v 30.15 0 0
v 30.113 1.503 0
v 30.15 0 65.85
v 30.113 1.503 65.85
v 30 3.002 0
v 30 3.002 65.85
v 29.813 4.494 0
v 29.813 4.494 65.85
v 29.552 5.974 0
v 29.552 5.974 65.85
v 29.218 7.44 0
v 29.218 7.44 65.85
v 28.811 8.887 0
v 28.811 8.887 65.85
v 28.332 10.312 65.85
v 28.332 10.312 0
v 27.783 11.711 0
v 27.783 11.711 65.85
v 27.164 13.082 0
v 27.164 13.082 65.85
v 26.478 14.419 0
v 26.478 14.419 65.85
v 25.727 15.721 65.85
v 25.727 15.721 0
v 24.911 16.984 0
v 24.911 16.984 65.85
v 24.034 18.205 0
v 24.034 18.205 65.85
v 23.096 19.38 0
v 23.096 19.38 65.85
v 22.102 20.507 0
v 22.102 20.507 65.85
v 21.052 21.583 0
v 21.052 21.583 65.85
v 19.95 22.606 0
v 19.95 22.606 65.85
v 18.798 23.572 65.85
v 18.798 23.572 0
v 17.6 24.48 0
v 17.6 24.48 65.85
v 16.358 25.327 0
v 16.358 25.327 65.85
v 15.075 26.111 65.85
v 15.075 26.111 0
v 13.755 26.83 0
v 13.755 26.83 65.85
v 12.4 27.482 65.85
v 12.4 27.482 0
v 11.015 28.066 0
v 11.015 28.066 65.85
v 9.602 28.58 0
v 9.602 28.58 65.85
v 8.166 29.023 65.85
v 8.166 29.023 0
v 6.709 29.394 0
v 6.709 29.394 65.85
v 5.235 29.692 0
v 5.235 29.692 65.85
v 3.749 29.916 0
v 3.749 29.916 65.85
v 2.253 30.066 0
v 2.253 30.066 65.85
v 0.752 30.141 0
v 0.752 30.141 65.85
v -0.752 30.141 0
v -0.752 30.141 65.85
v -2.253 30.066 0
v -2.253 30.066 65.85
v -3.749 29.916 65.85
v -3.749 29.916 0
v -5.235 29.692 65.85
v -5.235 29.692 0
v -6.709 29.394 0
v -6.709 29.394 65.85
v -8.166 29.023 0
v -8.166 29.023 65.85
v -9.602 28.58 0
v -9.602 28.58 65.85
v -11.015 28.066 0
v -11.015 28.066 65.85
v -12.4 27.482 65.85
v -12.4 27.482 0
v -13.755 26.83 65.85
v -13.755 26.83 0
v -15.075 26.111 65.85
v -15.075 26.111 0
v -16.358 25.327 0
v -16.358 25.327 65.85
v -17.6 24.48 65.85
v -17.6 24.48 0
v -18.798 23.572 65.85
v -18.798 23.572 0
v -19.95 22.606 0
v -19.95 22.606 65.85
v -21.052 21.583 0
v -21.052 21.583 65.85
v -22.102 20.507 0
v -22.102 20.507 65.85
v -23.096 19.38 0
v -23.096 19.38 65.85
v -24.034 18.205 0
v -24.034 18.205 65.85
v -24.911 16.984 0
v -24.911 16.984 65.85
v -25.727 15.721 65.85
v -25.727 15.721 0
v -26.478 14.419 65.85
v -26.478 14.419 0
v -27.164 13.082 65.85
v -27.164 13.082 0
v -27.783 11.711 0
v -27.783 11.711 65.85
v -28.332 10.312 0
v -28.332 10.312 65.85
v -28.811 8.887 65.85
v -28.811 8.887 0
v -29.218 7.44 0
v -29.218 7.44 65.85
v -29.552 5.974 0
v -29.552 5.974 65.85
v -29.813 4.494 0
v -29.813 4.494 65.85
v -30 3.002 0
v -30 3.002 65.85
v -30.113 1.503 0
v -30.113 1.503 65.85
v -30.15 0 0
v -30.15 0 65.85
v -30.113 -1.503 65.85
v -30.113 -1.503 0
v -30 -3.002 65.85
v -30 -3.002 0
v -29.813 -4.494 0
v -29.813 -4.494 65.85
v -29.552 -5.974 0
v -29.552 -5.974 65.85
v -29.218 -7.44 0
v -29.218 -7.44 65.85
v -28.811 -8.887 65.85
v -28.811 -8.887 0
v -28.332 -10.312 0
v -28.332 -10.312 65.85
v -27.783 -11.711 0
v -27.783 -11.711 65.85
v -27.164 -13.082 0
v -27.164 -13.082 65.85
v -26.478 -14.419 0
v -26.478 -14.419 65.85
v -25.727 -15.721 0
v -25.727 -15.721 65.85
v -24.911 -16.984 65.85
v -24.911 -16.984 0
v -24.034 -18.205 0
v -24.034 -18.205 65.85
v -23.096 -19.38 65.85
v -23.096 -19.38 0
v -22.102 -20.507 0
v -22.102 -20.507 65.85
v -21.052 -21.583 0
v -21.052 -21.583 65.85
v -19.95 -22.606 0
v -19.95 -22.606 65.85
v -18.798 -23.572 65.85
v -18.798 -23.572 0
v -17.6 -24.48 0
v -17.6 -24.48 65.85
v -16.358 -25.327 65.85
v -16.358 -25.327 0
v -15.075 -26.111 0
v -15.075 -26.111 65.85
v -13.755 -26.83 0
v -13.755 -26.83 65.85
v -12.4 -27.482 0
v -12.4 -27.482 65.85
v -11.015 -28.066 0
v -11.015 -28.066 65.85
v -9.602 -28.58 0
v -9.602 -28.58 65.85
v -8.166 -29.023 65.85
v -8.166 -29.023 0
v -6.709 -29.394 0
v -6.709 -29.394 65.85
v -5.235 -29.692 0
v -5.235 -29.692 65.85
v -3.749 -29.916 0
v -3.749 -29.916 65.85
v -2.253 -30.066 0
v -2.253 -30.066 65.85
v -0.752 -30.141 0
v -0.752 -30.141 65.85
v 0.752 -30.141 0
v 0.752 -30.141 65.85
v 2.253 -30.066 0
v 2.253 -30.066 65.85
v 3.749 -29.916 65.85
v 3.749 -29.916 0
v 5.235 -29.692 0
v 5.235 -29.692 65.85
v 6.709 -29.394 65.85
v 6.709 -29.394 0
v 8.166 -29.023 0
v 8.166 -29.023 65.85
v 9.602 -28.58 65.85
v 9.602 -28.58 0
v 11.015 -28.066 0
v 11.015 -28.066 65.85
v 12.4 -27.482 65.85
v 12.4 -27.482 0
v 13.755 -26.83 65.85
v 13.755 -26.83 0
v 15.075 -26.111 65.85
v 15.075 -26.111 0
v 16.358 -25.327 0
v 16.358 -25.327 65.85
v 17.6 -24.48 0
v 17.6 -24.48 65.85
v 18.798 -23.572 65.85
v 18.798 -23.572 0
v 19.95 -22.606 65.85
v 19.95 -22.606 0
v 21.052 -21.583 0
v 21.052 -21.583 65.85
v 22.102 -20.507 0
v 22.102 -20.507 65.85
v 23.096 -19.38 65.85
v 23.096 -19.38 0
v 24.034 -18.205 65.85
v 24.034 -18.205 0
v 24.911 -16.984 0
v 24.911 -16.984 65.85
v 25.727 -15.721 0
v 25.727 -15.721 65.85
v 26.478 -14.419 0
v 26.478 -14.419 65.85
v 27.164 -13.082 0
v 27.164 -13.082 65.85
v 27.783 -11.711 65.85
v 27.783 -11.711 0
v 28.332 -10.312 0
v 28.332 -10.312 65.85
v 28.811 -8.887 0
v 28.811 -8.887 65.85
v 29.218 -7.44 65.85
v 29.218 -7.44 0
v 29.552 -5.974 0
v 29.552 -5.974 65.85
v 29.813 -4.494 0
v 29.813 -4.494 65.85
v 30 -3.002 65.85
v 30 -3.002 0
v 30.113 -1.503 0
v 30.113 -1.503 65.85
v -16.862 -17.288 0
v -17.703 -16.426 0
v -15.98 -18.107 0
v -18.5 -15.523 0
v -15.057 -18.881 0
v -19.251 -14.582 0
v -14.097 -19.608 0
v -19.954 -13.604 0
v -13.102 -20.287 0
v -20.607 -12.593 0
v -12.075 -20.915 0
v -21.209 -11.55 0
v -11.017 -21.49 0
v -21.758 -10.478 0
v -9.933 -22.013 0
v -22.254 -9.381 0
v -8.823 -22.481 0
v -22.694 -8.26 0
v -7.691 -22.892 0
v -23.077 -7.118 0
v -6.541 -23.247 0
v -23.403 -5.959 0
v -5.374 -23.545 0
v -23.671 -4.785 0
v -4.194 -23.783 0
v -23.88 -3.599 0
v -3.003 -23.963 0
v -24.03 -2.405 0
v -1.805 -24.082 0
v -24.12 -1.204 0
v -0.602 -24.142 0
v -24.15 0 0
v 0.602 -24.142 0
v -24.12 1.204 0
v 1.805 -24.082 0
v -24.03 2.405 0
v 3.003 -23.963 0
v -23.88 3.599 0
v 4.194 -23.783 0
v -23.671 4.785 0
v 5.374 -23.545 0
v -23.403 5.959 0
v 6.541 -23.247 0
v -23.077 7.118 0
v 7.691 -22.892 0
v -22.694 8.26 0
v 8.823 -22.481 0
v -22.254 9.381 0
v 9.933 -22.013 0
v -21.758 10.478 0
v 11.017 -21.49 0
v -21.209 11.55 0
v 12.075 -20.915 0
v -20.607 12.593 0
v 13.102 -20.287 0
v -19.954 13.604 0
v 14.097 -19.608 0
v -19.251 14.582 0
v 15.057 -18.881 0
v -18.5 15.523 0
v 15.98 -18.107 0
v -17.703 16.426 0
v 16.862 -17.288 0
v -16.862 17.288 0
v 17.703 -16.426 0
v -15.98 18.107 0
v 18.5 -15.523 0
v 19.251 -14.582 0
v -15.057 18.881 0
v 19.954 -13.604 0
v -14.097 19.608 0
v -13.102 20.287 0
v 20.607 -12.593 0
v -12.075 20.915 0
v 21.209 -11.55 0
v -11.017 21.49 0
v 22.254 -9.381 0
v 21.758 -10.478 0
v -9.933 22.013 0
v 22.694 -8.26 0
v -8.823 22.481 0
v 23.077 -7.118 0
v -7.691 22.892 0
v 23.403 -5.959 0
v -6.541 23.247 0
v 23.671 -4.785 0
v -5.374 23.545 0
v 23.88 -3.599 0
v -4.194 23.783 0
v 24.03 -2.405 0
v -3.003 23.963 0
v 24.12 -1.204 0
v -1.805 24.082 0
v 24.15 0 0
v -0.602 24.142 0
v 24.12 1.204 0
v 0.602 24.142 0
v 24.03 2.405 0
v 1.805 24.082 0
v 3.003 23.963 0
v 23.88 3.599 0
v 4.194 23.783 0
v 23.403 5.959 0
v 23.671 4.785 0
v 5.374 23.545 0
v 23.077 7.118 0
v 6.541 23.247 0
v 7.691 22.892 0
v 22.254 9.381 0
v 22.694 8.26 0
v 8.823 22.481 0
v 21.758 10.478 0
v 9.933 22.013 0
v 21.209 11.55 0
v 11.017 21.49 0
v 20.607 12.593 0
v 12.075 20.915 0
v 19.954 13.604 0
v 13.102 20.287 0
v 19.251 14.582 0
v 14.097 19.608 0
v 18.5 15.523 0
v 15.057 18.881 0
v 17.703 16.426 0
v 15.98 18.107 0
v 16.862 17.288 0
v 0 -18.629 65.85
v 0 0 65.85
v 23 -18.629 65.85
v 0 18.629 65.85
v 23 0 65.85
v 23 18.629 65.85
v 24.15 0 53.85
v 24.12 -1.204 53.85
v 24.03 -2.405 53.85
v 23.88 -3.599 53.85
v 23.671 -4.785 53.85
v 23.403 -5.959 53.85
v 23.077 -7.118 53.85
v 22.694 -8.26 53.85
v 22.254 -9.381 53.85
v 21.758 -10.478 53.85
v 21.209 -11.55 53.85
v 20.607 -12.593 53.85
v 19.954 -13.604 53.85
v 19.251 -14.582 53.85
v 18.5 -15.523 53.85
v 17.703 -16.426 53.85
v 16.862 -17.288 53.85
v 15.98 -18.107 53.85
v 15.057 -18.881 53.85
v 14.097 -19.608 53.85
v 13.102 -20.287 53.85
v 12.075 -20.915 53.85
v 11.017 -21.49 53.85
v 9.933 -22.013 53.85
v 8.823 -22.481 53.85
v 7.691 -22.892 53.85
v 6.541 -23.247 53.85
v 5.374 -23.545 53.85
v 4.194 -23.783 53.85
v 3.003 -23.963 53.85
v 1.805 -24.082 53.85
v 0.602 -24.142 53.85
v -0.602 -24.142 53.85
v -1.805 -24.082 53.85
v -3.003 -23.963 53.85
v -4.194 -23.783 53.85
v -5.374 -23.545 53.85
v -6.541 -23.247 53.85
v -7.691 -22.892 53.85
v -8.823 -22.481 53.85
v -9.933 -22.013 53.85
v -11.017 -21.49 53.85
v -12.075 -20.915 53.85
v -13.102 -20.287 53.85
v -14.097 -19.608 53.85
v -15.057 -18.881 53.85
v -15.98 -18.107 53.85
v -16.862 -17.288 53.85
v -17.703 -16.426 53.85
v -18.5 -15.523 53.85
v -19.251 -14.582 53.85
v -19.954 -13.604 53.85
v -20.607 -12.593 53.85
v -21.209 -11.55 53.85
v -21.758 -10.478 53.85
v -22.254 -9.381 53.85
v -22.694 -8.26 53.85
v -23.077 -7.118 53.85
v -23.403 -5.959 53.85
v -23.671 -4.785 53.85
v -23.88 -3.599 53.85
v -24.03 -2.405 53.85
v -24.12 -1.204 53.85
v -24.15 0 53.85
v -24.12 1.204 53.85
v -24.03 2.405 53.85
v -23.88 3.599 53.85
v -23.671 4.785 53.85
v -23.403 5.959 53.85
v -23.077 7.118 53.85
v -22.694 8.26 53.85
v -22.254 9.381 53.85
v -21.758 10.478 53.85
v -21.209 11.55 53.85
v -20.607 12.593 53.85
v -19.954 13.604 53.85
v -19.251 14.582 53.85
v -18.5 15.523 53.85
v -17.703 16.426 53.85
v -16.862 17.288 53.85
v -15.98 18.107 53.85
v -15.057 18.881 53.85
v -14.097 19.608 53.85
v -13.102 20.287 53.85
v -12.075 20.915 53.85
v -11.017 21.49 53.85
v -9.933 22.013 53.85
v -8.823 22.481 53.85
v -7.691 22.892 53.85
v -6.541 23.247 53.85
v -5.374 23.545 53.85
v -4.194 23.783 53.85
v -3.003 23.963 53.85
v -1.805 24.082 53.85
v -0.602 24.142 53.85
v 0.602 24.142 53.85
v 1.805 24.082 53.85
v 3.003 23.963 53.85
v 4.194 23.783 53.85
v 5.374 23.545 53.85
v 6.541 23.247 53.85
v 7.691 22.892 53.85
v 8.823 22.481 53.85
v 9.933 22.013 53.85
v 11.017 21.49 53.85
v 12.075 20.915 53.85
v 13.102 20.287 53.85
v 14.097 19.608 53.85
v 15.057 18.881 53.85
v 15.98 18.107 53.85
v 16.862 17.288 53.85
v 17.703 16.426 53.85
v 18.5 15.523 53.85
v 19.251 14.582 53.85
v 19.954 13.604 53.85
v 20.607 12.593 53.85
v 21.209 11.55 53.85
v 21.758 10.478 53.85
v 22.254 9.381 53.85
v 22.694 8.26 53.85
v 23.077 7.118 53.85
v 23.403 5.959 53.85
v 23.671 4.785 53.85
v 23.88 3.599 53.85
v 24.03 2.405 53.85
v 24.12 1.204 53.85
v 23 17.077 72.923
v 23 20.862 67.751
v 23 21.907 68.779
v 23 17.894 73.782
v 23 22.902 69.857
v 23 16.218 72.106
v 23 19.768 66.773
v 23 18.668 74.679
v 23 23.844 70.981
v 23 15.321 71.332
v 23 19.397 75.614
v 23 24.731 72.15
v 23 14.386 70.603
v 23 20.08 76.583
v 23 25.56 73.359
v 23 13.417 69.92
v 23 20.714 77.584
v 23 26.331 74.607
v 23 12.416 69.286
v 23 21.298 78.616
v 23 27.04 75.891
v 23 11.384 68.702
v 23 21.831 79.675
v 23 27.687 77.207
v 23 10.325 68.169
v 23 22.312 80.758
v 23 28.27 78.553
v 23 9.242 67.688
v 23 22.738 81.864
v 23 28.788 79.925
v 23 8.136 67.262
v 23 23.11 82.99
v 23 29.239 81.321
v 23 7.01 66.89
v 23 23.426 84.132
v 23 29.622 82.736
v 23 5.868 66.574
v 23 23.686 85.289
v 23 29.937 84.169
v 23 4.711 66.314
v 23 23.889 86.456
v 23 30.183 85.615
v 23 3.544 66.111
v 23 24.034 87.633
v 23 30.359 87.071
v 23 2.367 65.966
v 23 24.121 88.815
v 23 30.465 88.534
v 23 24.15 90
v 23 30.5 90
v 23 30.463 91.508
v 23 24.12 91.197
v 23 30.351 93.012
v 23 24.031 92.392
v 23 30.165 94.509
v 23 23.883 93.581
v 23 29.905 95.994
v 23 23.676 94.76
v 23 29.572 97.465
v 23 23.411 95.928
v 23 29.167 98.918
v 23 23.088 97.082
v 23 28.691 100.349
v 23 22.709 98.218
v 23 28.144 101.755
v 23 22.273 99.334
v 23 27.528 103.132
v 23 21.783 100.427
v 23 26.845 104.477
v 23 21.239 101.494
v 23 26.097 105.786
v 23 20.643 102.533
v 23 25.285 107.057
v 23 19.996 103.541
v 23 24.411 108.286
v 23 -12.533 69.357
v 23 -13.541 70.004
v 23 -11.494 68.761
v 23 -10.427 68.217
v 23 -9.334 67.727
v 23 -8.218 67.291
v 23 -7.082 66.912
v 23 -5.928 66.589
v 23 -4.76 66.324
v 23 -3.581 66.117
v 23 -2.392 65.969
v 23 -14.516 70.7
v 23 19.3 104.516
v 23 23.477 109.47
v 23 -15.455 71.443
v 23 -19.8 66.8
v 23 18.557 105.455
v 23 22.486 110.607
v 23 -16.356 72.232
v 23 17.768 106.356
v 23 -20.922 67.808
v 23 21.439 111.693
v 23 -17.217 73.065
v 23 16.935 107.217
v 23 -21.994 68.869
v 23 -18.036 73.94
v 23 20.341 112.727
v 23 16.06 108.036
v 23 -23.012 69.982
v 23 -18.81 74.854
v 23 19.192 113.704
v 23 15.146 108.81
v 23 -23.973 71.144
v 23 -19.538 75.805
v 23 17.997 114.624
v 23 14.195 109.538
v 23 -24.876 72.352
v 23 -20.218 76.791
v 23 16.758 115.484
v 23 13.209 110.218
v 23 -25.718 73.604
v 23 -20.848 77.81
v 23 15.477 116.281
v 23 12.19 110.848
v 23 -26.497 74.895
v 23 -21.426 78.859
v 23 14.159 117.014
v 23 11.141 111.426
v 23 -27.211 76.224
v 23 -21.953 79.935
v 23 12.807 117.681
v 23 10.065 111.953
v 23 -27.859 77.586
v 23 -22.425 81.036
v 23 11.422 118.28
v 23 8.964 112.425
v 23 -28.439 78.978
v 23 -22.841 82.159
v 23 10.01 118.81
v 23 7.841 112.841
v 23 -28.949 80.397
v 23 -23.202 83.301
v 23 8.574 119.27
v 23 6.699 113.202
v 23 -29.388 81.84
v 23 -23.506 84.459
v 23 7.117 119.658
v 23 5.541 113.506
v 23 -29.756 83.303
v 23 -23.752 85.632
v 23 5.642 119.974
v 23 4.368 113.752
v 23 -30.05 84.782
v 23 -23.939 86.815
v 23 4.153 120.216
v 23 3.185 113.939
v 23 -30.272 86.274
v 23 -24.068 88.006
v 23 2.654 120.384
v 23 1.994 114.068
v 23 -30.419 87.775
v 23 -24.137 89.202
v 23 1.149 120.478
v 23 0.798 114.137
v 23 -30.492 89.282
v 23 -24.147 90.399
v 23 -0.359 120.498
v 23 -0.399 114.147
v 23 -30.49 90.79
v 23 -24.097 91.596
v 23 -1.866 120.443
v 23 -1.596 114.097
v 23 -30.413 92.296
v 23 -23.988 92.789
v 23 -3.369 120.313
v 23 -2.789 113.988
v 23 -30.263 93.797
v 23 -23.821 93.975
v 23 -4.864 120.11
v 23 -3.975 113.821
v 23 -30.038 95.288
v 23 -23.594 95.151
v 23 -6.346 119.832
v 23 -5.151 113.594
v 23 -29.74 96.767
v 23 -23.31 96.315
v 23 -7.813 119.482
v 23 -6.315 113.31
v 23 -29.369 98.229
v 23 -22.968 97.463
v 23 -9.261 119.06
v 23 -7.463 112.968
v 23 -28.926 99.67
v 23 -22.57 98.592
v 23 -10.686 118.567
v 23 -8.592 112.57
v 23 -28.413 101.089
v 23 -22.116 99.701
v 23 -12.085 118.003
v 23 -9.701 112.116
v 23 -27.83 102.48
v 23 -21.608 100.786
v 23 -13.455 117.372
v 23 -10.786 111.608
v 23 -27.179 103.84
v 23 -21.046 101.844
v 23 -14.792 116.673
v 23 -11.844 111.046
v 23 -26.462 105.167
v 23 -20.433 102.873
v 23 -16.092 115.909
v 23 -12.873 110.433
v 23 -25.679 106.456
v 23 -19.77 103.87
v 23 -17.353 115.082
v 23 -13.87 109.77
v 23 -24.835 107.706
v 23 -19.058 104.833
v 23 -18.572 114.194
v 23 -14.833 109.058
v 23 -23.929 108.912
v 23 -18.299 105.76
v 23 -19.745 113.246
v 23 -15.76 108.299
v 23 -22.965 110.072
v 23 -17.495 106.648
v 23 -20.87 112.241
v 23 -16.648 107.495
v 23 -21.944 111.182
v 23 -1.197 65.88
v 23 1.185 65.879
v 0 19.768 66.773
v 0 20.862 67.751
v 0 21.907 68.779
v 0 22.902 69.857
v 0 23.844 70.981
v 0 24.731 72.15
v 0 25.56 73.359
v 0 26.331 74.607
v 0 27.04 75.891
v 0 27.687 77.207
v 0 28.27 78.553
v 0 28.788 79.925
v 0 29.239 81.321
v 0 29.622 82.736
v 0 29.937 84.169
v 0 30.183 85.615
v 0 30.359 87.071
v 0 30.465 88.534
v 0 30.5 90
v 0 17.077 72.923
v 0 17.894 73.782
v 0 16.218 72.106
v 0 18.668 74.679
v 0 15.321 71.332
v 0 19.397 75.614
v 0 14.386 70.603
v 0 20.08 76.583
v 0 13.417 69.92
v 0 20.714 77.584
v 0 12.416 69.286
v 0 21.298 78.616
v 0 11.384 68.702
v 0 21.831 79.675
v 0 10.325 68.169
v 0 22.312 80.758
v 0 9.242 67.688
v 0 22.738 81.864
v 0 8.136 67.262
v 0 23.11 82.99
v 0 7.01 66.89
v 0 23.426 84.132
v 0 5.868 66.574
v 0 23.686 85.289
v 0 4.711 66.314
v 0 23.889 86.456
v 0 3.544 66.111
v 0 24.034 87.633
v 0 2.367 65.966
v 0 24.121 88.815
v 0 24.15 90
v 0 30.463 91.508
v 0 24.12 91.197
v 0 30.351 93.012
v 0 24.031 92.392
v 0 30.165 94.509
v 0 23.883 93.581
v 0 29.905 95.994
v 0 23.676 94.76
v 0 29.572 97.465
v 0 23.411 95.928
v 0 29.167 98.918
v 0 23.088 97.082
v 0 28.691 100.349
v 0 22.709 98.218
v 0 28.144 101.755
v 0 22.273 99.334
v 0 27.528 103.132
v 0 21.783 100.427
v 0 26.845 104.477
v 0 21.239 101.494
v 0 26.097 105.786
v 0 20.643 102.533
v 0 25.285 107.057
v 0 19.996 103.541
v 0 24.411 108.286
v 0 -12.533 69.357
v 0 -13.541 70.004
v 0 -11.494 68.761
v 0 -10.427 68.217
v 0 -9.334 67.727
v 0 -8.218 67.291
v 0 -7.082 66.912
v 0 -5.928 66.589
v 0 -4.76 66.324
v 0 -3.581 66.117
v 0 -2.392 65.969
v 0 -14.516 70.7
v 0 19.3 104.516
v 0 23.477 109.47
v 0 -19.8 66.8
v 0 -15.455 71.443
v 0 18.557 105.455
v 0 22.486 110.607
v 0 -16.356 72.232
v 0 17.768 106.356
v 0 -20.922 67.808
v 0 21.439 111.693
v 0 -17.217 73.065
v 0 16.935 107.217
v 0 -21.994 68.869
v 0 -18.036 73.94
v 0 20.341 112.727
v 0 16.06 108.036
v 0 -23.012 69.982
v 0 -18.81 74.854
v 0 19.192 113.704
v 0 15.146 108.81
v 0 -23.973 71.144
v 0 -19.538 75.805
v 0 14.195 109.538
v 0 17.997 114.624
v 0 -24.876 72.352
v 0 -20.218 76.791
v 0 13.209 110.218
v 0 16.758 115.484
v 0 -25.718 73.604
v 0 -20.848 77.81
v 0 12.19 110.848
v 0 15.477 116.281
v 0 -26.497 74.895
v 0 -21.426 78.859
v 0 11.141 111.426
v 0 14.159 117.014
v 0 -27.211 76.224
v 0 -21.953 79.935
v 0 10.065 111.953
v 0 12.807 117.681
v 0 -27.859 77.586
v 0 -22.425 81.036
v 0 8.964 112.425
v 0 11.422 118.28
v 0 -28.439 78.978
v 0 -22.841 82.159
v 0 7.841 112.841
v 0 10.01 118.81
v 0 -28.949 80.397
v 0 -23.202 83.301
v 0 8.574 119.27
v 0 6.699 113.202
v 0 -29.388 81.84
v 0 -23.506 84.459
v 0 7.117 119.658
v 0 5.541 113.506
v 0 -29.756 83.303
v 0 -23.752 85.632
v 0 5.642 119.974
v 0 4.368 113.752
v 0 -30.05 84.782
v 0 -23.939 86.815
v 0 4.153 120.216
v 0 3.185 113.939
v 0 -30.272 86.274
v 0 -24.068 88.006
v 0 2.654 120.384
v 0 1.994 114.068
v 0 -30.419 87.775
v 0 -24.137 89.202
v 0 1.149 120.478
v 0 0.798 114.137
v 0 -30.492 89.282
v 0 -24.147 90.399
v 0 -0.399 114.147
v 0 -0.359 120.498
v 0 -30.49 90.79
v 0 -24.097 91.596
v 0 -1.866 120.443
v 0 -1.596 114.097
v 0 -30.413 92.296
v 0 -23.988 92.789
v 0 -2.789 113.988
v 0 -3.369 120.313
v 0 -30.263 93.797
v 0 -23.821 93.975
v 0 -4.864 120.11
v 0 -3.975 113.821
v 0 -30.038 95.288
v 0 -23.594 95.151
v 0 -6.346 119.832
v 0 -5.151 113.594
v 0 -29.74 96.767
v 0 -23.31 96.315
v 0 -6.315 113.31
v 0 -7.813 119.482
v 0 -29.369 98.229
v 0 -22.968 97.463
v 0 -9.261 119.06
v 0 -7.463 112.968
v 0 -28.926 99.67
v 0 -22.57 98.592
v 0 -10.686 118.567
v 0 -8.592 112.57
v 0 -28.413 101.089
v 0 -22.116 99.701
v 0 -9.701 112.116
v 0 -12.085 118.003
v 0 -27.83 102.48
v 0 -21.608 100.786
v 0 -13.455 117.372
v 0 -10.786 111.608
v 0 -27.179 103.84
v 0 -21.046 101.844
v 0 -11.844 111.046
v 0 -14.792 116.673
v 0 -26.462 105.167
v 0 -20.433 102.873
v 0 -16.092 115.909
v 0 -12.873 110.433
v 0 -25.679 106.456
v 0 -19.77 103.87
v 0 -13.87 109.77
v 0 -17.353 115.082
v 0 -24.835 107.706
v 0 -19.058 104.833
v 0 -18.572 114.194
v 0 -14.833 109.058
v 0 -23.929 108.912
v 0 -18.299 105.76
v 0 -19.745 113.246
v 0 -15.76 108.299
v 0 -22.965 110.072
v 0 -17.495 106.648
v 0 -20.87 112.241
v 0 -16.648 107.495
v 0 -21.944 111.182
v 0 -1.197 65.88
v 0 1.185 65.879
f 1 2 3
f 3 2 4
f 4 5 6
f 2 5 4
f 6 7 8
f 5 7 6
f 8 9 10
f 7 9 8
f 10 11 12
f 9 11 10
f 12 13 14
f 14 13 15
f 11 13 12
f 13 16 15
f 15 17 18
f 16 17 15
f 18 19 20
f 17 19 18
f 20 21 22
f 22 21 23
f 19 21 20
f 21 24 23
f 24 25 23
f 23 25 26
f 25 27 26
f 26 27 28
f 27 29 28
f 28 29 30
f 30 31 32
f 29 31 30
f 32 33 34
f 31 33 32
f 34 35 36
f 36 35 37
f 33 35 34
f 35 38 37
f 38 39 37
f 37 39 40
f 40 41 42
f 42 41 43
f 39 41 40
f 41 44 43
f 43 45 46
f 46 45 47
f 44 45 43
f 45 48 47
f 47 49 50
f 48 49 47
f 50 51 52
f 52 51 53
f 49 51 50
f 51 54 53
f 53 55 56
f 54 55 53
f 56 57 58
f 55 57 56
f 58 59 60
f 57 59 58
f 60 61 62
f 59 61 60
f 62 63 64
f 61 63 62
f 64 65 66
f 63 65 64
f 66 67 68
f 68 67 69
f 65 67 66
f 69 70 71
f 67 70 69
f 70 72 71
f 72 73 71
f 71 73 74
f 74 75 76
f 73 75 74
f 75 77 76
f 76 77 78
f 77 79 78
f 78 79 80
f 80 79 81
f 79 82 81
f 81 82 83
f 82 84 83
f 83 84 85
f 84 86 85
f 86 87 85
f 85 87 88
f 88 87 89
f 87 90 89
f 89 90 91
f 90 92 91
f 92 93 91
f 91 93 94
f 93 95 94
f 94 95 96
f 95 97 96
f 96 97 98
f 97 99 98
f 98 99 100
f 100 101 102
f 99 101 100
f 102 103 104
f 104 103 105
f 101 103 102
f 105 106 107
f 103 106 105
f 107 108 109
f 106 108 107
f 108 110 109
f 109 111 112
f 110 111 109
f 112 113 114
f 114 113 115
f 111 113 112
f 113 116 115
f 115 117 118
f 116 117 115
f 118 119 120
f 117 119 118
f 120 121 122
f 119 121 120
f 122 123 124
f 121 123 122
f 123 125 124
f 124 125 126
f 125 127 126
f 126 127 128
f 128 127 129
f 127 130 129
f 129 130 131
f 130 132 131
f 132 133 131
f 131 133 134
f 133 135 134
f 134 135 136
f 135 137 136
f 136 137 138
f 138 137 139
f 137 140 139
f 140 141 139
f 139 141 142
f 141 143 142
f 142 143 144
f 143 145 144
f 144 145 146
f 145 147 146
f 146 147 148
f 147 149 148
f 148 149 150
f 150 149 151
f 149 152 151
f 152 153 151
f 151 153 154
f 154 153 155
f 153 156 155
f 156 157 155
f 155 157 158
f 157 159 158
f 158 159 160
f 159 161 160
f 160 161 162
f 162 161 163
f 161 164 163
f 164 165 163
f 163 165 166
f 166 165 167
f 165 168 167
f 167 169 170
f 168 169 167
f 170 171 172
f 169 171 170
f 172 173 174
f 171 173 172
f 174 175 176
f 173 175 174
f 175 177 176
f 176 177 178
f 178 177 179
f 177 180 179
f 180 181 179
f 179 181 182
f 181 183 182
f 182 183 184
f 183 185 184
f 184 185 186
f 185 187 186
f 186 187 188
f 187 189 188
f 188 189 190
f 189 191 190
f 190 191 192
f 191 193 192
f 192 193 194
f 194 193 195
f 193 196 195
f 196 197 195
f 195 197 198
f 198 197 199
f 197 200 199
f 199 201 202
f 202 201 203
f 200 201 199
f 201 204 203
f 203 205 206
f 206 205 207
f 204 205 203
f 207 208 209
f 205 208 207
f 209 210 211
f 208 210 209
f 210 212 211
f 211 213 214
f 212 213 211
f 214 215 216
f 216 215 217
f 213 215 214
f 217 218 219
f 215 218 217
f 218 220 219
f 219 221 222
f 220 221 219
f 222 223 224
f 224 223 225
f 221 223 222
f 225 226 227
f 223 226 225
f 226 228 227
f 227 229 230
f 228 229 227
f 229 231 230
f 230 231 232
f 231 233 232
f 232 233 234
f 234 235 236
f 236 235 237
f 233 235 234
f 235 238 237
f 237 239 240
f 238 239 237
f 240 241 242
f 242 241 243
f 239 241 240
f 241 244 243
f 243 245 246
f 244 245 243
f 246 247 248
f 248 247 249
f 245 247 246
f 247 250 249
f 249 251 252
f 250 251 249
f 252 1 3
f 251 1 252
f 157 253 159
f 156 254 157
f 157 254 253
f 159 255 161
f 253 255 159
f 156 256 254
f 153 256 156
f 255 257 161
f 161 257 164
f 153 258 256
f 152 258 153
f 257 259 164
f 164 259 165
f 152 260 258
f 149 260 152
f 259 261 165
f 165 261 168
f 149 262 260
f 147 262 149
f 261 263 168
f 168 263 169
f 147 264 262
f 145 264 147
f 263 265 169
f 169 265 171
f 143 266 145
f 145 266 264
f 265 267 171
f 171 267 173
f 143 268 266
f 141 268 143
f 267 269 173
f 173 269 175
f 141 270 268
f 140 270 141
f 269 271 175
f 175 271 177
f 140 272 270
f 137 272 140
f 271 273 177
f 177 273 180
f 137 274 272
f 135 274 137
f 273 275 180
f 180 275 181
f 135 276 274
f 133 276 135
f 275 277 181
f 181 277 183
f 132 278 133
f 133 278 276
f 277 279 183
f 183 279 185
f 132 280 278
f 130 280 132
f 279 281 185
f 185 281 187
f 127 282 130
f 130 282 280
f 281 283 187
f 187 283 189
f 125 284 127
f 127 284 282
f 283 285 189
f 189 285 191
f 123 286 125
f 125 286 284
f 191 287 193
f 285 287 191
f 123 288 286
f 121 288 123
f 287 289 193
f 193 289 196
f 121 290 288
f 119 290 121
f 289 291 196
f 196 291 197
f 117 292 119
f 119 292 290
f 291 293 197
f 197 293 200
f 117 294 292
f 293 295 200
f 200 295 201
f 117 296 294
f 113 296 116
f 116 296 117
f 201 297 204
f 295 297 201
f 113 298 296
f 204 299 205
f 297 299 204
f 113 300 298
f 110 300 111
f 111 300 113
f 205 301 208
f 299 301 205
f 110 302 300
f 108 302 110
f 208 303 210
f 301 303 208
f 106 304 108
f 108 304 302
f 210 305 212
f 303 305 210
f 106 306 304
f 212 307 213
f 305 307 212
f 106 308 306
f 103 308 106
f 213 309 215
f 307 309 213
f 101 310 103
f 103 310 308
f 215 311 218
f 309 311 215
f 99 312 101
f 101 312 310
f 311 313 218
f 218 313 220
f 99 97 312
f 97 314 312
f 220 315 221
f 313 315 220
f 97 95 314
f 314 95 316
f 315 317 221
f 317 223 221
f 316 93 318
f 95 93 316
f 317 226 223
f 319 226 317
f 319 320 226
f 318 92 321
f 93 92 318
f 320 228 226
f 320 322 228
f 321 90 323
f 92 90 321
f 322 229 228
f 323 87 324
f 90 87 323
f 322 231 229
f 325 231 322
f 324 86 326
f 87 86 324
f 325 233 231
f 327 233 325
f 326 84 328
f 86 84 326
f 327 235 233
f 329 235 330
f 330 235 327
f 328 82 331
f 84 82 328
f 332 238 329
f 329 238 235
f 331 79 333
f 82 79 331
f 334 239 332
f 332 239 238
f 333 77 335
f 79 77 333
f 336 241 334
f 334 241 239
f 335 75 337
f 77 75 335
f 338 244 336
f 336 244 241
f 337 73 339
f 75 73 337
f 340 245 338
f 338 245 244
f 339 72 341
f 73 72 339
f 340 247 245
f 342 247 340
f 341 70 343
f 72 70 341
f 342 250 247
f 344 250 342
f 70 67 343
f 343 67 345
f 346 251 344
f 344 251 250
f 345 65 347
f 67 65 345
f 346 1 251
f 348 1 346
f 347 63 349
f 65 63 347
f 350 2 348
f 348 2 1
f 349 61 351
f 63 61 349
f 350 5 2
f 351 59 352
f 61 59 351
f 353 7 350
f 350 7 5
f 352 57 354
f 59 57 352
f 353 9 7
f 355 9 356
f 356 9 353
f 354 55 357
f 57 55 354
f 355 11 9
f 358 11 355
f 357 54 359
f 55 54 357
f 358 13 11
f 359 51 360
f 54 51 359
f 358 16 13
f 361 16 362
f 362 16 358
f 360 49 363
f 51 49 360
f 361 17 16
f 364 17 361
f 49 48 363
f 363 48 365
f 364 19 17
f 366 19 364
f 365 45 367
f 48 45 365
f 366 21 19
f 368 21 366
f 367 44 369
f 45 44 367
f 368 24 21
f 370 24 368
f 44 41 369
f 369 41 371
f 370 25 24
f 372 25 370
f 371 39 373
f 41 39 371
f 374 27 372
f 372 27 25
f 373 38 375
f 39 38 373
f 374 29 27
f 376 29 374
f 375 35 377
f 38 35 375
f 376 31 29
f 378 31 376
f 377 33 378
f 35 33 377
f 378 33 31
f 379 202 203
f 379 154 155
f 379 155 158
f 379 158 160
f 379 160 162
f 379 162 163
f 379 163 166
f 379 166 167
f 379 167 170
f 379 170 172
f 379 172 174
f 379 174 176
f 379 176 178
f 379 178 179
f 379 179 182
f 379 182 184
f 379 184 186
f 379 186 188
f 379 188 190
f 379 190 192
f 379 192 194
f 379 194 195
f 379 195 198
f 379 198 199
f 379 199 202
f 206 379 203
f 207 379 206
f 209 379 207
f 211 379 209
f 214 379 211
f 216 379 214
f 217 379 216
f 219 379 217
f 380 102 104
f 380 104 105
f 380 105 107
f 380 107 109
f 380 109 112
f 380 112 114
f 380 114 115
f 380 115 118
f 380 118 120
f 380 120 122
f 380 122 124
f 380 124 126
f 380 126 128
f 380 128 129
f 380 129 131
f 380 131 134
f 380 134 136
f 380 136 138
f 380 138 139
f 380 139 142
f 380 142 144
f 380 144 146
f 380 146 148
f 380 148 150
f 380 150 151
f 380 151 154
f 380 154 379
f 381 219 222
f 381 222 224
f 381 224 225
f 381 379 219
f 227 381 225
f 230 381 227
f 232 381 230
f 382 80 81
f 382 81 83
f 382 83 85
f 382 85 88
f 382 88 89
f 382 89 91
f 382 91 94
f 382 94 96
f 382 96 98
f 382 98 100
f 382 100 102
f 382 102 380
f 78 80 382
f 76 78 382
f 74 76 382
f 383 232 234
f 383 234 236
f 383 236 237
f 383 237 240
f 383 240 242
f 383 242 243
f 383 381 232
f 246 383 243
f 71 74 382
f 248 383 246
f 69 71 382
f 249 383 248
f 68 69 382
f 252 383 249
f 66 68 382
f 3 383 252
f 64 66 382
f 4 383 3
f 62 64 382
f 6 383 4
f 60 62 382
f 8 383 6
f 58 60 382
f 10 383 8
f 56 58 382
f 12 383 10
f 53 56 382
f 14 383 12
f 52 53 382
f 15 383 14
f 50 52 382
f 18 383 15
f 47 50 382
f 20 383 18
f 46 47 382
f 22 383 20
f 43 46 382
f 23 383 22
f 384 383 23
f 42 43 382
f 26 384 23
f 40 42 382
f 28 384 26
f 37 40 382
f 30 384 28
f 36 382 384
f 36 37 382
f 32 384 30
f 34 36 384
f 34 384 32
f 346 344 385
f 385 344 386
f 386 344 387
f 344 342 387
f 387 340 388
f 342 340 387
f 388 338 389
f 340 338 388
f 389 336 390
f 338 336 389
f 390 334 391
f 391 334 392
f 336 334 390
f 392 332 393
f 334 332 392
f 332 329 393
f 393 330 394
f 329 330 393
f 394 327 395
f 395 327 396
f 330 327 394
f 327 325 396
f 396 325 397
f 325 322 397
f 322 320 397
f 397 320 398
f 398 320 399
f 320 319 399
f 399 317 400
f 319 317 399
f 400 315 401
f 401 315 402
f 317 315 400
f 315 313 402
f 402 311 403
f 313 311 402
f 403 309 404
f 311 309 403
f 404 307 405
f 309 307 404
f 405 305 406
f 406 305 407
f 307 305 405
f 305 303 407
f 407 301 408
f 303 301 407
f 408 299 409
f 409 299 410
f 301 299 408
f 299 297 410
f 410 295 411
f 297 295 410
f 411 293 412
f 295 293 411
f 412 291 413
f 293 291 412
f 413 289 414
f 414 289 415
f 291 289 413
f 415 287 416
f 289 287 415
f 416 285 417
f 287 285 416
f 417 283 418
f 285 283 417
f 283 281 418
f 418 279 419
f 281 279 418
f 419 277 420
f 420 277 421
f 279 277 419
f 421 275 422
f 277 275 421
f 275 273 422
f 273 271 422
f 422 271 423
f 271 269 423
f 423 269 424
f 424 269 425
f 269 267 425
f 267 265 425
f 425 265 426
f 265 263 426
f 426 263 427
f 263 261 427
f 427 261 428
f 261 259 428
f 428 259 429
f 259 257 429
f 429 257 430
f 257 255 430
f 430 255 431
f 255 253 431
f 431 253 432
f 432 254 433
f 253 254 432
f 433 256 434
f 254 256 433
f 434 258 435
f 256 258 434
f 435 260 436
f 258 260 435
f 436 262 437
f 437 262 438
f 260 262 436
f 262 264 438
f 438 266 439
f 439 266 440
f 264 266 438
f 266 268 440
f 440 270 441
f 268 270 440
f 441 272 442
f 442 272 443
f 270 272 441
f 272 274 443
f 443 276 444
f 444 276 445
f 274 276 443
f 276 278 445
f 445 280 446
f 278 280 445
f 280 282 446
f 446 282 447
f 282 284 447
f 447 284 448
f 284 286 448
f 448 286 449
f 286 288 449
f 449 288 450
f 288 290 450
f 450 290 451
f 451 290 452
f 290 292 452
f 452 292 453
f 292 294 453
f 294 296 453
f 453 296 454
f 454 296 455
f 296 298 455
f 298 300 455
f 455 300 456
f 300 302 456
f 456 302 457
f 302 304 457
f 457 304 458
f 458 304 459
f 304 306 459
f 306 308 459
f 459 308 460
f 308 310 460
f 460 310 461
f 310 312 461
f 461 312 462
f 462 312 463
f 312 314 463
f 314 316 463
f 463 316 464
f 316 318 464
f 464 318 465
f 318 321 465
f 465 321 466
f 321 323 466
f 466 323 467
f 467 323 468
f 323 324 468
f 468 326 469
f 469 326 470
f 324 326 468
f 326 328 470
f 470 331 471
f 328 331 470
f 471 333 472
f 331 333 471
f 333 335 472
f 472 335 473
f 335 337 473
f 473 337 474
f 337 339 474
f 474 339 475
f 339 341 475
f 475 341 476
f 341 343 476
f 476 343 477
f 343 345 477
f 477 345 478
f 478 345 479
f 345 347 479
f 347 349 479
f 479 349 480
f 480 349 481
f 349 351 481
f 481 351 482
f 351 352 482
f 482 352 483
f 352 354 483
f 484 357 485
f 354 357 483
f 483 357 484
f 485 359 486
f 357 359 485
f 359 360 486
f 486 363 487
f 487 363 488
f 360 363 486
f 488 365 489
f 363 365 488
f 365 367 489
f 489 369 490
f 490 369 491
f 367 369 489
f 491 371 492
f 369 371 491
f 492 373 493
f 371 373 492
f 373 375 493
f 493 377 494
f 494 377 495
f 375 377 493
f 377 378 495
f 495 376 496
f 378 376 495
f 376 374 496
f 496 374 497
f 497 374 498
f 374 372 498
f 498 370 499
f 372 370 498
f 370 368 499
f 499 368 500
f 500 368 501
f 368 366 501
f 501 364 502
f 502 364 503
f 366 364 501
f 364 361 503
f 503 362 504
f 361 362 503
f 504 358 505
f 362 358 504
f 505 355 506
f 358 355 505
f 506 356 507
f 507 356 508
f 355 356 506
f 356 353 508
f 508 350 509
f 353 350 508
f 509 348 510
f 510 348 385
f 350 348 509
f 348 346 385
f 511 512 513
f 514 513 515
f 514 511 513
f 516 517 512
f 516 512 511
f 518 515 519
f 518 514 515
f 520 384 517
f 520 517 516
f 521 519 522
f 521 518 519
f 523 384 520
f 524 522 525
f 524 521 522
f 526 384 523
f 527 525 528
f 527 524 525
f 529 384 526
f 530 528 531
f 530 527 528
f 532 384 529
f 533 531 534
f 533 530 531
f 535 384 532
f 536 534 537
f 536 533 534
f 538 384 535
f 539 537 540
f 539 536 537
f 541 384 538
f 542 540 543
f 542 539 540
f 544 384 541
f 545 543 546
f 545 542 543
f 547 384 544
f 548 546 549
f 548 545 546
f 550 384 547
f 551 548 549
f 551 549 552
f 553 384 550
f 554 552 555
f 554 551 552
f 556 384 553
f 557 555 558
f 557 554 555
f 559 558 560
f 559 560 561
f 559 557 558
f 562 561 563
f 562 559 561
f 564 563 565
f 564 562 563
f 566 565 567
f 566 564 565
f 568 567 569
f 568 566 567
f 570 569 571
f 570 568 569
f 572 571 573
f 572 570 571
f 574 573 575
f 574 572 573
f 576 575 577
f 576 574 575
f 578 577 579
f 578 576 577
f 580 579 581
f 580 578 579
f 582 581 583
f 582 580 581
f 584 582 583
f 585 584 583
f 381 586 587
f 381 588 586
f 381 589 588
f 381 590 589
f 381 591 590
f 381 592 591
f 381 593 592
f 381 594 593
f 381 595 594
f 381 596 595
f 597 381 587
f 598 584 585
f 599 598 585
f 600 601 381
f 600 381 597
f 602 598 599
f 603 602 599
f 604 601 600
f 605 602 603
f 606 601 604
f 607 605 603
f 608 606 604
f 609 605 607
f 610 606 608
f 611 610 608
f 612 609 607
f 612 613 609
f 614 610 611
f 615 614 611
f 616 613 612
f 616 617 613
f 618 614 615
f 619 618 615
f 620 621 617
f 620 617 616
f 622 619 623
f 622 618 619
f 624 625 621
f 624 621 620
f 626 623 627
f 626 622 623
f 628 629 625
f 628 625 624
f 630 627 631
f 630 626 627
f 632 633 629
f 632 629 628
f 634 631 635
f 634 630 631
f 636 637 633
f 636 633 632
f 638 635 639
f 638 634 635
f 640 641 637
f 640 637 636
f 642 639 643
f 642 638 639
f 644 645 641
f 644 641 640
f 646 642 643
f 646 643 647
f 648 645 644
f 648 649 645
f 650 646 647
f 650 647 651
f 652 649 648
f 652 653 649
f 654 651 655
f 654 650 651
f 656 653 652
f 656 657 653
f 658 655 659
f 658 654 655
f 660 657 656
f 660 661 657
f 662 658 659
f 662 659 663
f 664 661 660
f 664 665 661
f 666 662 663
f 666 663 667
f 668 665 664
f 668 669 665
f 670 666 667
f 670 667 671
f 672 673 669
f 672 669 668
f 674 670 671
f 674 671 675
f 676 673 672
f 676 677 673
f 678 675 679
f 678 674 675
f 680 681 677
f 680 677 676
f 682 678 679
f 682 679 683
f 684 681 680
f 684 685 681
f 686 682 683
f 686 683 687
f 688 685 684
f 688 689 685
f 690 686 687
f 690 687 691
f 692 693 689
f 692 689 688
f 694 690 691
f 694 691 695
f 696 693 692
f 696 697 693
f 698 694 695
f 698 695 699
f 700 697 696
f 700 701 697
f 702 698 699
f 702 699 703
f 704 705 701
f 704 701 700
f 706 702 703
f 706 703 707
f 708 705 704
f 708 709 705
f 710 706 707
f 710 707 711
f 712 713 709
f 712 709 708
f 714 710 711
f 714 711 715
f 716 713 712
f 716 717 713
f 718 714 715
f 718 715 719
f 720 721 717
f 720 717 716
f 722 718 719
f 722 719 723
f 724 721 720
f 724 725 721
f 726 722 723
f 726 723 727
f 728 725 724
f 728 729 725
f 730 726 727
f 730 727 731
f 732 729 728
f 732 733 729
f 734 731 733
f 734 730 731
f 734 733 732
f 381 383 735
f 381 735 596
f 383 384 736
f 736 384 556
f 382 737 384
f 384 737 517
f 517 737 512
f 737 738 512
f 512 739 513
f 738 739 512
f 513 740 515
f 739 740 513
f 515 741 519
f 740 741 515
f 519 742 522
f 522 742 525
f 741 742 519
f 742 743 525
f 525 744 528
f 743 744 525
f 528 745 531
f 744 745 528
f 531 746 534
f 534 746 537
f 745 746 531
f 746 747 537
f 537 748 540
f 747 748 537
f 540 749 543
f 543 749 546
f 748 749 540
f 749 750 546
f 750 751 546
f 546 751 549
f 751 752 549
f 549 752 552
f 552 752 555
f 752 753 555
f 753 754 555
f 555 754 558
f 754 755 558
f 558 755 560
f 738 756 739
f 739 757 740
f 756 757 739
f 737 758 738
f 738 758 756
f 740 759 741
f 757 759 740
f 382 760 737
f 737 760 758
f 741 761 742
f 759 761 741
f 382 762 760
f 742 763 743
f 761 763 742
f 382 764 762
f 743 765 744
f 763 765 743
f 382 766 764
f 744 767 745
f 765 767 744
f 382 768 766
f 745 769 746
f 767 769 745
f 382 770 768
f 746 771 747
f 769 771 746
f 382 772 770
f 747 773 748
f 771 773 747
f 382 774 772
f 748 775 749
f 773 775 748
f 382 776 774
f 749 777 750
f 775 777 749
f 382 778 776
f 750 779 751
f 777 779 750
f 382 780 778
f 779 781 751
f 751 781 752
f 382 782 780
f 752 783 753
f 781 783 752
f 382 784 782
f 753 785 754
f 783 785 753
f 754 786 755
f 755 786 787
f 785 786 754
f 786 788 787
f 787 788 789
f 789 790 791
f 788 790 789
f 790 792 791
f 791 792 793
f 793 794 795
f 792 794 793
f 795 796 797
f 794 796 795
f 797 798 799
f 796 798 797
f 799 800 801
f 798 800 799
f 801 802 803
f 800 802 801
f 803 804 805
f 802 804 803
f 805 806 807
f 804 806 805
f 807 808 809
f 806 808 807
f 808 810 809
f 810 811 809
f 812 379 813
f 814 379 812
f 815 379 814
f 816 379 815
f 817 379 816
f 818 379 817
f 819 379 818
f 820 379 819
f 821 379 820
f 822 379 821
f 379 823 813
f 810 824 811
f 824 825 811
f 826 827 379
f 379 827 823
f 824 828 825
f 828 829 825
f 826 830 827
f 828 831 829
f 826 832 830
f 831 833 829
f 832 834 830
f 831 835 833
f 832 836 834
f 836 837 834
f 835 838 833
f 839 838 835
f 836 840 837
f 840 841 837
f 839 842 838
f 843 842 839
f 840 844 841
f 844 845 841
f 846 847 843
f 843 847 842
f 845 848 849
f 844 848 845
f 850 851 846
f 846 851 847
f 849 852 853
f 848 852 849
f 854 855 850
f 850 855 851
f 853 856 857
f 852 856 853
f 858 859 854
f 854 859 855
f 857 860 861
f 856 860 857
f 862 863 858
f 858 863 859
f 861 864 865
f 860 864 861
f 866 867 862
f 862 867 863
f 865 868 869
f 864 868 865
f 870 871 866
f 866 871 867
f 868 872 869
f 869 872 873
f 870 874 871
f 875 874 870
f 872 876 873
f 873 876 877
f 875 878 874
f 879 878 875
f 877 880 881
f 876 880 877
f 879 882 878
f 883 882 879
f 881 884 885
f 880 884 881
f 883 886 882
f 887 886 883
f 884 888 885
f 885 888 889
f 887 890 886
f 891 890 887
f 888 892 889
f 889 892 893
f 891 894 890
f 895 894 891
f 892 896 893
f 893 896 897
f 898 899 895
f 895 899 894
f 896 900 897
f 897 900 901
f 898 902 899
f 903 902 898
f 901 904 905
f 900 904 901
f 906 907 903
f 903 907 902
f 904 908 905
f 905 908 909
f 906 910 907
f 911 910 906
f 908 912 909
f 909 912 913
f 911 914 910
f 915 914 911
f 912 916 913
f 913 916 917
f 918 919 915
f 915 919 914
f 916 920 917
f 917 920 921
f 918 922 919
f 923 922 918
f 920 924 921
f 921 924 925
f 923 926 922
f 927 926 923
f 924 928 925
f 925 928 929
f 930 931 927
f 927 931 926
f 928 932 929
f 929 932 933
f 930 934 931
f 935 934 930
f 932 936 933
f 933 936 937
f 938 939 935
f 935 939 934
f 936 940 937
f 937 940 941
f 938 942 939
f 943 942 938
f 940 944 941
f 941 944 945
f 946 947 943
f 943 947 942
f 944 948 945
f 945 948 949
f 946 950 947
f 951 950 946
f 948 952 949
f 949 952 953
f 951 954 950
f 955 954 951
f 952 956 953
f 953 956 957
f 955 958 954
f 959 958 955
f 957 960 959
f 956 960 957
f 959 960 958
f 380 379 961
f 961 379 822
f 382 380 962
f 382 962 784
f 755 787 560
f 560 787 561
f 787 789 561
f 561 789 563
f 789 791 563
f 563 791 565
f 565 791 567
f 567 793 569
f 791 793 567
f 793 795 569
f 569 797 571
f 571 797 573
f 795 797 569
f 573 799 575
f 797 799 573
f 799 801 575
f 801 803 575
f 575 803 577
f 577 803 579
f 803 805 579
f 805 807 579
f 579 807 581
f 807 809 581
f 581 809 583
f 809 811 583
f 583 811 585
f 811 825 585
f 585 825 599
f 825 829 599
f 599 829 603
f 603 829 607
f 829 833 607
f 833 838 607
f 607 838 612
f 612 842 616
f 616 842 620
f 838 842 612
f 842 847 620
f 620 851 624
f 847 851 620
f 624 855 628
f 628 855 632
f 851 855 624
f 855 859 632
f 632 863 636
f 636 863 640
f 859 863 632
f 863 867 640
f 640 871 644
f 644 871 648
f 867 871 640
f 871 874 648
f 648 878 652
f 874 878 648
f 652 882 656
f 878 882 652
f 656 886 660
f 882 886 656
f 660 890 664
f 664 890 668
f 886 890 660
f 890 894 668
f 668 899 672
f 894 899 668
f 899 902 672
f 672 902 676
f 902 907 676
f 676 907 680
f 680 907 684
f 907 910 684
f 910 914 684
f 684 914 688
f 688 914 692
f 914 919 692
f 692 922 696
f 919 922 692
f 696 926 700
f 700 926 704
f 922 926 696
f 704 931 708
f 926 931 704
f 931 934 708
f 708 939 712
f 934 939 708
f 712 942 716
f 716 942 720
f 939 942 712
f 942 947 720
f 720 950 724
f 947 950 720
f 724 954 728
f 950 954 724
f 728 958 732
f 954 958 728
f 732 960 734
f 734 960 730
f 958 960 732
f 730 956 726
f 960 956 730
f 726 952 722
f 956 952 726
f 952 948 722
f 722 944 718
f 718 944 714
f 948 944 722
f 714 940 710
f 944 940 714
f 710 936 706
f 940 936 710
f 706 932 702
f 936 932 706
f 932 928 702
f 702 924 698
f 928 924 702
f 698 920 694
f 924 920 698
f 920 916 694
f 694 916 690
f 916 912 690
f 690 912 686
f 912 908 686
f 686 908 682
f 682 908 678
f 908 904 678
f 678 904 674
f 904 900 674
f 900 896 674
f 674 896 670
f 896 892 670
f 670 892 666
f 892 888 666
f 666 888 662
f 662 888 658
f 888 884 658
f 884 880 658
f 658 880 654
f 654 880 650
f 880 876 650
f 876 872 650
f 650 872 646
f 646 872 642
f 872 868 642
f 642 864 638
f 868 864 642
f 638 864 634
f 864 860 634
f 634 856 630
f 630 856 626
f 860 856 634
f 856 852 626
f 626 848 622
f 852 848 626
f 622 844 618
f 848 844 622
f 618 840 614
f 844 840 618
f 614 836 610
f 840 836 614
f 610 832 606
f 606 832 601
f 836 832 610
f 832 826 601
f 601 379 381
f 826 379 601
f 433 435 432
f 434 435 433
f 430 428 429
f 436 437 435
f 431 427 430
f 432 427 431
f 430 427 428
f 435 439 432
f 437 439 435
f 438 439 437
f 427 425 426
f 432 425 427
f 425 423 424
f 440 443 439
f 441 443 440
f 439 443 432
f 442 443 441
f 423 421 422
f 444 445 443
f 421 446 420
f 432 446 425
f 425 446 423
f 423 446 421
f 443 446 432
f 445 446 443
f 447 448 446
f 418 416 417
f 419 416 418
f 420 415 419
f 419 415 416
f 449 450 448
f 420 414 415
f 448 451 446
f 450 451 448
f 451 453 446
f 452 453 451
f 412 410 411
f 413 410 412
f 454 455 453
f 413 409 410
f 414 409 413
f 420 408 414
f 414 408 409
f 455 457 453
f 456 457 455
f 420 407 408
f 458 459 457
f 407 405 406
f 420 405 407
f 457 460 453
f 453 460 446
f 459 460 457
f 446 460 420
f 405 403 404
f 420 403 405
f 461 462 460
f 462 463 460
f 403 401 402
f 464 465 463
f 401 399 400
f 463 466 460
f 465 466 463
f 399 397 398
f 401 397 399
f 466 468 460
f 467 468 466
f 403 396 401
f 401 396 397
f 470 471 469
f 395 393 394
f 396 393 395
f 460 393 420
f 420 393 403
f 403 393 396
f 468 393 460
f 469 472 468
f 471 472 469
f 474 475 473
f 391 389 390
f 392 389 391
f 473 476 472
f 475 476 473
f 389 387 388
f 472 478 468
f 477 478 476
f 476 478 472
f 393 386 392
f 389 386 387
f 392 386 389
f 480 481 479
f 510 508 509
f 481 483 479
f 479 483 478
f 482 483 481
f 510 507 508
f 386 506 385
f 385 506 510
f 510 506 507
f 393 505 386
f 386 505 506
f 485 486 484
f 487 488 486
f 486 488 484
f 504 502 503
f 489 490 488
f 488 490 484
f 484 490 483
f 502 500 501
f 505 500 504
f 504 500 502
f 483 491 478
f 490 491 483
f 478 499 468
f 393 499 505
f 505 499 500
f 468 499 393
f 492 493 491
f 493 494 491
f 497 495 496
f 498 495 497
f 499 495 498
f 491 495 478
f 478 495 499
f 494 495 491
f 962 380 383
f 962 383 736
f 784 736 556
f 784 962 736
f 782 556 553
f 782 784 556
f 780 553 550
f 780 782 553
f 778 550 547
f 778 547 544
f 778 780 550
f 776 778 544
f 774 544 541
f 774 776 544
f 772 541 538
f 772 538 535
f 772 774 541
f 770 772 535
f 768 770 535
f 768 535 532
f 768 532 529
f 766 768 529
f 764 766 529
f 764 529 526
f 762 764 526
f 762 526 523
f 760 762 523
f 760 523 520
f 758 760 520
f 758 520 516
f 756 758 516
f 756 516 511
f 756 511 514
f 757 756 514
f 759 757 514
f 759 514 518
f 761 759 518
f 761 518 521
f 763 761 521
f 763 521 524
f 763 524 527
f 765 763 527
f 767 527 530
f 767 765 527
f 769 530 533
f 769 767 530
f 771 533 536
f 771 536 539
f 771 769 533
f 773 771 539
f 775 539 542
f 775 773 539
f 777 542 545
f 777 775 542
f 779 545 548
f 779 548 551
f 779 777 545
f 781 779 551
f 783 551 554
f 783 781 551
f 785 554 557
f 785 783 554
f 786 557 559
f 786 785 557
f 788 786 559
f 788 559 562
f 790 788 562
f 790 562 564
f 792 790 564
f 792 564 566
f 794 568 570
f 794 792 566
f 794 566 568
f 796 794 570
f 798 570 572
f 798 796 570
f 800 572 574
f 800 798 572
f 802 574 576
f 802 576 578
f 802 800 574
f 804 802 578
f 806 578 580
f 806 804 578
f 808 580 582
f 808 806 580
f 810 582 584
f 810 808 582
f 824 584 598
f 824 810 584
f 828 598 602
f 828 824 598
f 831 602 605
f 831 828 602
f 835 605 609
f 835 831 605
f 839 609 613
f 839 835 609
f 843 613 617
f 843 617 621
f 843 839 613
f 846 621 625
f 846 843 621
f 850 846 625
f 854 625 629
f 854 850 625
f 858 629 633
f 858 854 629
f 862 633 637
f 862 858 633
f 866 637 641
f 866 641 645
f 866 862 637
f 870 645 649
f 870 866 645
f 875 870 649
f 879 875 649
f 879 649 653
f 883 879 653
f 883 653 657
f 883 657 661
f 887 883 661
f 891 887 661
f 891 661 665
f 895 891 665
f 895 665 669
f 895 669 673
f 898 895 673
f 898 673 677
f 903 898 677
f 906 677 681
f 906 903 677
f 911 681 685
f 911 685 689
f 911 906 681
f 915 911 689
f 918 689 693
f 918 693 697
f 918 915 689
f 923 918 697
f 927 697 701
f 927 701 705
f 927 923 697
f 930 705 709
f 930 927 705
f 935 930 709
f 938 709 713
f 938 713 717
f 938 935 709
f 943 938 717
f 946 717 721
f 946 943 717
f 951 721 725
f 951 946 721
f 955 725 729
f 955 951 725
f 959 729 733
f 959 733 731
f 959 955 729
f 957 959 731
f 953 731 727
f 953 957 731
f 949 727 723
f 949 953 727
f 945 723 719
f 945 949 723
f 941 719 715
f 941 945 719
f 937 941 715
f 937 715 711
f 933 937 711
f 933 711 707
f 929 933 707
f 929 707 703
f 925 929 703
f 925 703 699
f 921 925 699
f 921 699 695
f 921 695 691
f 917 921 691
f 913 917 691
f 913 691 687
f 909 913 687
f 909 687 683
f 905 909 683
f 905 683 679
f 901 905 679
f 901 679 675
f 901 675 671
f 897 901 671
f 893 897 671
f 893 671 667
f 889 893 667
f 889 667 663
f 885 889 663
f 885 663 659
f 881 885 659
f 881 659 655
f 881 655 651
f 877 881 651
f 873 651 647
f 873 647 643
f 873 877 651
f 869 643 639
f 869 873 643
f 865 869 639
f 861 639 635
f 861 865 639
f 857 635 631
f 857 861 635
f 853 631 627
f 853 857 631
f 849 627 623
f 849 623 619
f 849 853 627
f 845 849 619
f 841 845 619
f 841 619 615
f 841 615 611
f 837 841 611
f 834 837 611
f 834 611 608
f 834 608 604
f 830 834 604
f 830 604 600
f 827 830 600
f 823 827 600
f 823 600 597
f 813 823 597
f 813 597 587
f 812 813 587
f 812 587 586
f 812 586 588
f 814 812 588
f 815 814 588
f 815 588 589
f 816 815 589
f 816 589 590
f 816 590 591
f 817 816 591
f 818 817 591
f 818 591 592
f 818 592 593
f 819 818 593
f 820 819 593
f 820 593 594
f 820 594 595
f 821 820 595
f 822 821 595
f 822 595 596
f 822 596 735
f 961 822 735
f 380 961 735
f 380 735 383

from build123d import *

# Parameters (mm, degrees)
SKETCH001_R   = 30.15
PAD_DEPTH     = 65.85
SKETCH002_R   = 24.15
POCKET_DEPTH  = 53.85
SKETCH003_R   = 30.5
SKETCH003_R_2 = 24.15
PAD001_DEPTH  = 23


with BuildPart() as part:
    # Sketch001 → Pad (new body)
    with BuildSketch(Plane.XY):
        Circle(SKETCH001_R)
    extrude(amount=PAD_DEPTH)

    # Sketch002 (on Face2 of Pad) → Pocket (cut)
    with BuildSketch(Plane(origin=(0, 0, 0), x_dir=(1, 0, 0), z_dir=(0, 0, -1))):
        Circle(SKETCH002_R)
    extrude(amount=-POCKET_DEPTH, mode=Mode.SUBTRACT)

    # Sketch003 → Pad001 (join)
    with BuildSketch(Plane.YZ):
        with Locations((0, 90)):
            Circle(SKETCH003_R)
        with Locations((0, 90)):
            Circle(SKETCH003_R_2, mode=Mode.SUBTRACT)
    extrude(amount=PAD001_DEPTH)


solid = part.part
